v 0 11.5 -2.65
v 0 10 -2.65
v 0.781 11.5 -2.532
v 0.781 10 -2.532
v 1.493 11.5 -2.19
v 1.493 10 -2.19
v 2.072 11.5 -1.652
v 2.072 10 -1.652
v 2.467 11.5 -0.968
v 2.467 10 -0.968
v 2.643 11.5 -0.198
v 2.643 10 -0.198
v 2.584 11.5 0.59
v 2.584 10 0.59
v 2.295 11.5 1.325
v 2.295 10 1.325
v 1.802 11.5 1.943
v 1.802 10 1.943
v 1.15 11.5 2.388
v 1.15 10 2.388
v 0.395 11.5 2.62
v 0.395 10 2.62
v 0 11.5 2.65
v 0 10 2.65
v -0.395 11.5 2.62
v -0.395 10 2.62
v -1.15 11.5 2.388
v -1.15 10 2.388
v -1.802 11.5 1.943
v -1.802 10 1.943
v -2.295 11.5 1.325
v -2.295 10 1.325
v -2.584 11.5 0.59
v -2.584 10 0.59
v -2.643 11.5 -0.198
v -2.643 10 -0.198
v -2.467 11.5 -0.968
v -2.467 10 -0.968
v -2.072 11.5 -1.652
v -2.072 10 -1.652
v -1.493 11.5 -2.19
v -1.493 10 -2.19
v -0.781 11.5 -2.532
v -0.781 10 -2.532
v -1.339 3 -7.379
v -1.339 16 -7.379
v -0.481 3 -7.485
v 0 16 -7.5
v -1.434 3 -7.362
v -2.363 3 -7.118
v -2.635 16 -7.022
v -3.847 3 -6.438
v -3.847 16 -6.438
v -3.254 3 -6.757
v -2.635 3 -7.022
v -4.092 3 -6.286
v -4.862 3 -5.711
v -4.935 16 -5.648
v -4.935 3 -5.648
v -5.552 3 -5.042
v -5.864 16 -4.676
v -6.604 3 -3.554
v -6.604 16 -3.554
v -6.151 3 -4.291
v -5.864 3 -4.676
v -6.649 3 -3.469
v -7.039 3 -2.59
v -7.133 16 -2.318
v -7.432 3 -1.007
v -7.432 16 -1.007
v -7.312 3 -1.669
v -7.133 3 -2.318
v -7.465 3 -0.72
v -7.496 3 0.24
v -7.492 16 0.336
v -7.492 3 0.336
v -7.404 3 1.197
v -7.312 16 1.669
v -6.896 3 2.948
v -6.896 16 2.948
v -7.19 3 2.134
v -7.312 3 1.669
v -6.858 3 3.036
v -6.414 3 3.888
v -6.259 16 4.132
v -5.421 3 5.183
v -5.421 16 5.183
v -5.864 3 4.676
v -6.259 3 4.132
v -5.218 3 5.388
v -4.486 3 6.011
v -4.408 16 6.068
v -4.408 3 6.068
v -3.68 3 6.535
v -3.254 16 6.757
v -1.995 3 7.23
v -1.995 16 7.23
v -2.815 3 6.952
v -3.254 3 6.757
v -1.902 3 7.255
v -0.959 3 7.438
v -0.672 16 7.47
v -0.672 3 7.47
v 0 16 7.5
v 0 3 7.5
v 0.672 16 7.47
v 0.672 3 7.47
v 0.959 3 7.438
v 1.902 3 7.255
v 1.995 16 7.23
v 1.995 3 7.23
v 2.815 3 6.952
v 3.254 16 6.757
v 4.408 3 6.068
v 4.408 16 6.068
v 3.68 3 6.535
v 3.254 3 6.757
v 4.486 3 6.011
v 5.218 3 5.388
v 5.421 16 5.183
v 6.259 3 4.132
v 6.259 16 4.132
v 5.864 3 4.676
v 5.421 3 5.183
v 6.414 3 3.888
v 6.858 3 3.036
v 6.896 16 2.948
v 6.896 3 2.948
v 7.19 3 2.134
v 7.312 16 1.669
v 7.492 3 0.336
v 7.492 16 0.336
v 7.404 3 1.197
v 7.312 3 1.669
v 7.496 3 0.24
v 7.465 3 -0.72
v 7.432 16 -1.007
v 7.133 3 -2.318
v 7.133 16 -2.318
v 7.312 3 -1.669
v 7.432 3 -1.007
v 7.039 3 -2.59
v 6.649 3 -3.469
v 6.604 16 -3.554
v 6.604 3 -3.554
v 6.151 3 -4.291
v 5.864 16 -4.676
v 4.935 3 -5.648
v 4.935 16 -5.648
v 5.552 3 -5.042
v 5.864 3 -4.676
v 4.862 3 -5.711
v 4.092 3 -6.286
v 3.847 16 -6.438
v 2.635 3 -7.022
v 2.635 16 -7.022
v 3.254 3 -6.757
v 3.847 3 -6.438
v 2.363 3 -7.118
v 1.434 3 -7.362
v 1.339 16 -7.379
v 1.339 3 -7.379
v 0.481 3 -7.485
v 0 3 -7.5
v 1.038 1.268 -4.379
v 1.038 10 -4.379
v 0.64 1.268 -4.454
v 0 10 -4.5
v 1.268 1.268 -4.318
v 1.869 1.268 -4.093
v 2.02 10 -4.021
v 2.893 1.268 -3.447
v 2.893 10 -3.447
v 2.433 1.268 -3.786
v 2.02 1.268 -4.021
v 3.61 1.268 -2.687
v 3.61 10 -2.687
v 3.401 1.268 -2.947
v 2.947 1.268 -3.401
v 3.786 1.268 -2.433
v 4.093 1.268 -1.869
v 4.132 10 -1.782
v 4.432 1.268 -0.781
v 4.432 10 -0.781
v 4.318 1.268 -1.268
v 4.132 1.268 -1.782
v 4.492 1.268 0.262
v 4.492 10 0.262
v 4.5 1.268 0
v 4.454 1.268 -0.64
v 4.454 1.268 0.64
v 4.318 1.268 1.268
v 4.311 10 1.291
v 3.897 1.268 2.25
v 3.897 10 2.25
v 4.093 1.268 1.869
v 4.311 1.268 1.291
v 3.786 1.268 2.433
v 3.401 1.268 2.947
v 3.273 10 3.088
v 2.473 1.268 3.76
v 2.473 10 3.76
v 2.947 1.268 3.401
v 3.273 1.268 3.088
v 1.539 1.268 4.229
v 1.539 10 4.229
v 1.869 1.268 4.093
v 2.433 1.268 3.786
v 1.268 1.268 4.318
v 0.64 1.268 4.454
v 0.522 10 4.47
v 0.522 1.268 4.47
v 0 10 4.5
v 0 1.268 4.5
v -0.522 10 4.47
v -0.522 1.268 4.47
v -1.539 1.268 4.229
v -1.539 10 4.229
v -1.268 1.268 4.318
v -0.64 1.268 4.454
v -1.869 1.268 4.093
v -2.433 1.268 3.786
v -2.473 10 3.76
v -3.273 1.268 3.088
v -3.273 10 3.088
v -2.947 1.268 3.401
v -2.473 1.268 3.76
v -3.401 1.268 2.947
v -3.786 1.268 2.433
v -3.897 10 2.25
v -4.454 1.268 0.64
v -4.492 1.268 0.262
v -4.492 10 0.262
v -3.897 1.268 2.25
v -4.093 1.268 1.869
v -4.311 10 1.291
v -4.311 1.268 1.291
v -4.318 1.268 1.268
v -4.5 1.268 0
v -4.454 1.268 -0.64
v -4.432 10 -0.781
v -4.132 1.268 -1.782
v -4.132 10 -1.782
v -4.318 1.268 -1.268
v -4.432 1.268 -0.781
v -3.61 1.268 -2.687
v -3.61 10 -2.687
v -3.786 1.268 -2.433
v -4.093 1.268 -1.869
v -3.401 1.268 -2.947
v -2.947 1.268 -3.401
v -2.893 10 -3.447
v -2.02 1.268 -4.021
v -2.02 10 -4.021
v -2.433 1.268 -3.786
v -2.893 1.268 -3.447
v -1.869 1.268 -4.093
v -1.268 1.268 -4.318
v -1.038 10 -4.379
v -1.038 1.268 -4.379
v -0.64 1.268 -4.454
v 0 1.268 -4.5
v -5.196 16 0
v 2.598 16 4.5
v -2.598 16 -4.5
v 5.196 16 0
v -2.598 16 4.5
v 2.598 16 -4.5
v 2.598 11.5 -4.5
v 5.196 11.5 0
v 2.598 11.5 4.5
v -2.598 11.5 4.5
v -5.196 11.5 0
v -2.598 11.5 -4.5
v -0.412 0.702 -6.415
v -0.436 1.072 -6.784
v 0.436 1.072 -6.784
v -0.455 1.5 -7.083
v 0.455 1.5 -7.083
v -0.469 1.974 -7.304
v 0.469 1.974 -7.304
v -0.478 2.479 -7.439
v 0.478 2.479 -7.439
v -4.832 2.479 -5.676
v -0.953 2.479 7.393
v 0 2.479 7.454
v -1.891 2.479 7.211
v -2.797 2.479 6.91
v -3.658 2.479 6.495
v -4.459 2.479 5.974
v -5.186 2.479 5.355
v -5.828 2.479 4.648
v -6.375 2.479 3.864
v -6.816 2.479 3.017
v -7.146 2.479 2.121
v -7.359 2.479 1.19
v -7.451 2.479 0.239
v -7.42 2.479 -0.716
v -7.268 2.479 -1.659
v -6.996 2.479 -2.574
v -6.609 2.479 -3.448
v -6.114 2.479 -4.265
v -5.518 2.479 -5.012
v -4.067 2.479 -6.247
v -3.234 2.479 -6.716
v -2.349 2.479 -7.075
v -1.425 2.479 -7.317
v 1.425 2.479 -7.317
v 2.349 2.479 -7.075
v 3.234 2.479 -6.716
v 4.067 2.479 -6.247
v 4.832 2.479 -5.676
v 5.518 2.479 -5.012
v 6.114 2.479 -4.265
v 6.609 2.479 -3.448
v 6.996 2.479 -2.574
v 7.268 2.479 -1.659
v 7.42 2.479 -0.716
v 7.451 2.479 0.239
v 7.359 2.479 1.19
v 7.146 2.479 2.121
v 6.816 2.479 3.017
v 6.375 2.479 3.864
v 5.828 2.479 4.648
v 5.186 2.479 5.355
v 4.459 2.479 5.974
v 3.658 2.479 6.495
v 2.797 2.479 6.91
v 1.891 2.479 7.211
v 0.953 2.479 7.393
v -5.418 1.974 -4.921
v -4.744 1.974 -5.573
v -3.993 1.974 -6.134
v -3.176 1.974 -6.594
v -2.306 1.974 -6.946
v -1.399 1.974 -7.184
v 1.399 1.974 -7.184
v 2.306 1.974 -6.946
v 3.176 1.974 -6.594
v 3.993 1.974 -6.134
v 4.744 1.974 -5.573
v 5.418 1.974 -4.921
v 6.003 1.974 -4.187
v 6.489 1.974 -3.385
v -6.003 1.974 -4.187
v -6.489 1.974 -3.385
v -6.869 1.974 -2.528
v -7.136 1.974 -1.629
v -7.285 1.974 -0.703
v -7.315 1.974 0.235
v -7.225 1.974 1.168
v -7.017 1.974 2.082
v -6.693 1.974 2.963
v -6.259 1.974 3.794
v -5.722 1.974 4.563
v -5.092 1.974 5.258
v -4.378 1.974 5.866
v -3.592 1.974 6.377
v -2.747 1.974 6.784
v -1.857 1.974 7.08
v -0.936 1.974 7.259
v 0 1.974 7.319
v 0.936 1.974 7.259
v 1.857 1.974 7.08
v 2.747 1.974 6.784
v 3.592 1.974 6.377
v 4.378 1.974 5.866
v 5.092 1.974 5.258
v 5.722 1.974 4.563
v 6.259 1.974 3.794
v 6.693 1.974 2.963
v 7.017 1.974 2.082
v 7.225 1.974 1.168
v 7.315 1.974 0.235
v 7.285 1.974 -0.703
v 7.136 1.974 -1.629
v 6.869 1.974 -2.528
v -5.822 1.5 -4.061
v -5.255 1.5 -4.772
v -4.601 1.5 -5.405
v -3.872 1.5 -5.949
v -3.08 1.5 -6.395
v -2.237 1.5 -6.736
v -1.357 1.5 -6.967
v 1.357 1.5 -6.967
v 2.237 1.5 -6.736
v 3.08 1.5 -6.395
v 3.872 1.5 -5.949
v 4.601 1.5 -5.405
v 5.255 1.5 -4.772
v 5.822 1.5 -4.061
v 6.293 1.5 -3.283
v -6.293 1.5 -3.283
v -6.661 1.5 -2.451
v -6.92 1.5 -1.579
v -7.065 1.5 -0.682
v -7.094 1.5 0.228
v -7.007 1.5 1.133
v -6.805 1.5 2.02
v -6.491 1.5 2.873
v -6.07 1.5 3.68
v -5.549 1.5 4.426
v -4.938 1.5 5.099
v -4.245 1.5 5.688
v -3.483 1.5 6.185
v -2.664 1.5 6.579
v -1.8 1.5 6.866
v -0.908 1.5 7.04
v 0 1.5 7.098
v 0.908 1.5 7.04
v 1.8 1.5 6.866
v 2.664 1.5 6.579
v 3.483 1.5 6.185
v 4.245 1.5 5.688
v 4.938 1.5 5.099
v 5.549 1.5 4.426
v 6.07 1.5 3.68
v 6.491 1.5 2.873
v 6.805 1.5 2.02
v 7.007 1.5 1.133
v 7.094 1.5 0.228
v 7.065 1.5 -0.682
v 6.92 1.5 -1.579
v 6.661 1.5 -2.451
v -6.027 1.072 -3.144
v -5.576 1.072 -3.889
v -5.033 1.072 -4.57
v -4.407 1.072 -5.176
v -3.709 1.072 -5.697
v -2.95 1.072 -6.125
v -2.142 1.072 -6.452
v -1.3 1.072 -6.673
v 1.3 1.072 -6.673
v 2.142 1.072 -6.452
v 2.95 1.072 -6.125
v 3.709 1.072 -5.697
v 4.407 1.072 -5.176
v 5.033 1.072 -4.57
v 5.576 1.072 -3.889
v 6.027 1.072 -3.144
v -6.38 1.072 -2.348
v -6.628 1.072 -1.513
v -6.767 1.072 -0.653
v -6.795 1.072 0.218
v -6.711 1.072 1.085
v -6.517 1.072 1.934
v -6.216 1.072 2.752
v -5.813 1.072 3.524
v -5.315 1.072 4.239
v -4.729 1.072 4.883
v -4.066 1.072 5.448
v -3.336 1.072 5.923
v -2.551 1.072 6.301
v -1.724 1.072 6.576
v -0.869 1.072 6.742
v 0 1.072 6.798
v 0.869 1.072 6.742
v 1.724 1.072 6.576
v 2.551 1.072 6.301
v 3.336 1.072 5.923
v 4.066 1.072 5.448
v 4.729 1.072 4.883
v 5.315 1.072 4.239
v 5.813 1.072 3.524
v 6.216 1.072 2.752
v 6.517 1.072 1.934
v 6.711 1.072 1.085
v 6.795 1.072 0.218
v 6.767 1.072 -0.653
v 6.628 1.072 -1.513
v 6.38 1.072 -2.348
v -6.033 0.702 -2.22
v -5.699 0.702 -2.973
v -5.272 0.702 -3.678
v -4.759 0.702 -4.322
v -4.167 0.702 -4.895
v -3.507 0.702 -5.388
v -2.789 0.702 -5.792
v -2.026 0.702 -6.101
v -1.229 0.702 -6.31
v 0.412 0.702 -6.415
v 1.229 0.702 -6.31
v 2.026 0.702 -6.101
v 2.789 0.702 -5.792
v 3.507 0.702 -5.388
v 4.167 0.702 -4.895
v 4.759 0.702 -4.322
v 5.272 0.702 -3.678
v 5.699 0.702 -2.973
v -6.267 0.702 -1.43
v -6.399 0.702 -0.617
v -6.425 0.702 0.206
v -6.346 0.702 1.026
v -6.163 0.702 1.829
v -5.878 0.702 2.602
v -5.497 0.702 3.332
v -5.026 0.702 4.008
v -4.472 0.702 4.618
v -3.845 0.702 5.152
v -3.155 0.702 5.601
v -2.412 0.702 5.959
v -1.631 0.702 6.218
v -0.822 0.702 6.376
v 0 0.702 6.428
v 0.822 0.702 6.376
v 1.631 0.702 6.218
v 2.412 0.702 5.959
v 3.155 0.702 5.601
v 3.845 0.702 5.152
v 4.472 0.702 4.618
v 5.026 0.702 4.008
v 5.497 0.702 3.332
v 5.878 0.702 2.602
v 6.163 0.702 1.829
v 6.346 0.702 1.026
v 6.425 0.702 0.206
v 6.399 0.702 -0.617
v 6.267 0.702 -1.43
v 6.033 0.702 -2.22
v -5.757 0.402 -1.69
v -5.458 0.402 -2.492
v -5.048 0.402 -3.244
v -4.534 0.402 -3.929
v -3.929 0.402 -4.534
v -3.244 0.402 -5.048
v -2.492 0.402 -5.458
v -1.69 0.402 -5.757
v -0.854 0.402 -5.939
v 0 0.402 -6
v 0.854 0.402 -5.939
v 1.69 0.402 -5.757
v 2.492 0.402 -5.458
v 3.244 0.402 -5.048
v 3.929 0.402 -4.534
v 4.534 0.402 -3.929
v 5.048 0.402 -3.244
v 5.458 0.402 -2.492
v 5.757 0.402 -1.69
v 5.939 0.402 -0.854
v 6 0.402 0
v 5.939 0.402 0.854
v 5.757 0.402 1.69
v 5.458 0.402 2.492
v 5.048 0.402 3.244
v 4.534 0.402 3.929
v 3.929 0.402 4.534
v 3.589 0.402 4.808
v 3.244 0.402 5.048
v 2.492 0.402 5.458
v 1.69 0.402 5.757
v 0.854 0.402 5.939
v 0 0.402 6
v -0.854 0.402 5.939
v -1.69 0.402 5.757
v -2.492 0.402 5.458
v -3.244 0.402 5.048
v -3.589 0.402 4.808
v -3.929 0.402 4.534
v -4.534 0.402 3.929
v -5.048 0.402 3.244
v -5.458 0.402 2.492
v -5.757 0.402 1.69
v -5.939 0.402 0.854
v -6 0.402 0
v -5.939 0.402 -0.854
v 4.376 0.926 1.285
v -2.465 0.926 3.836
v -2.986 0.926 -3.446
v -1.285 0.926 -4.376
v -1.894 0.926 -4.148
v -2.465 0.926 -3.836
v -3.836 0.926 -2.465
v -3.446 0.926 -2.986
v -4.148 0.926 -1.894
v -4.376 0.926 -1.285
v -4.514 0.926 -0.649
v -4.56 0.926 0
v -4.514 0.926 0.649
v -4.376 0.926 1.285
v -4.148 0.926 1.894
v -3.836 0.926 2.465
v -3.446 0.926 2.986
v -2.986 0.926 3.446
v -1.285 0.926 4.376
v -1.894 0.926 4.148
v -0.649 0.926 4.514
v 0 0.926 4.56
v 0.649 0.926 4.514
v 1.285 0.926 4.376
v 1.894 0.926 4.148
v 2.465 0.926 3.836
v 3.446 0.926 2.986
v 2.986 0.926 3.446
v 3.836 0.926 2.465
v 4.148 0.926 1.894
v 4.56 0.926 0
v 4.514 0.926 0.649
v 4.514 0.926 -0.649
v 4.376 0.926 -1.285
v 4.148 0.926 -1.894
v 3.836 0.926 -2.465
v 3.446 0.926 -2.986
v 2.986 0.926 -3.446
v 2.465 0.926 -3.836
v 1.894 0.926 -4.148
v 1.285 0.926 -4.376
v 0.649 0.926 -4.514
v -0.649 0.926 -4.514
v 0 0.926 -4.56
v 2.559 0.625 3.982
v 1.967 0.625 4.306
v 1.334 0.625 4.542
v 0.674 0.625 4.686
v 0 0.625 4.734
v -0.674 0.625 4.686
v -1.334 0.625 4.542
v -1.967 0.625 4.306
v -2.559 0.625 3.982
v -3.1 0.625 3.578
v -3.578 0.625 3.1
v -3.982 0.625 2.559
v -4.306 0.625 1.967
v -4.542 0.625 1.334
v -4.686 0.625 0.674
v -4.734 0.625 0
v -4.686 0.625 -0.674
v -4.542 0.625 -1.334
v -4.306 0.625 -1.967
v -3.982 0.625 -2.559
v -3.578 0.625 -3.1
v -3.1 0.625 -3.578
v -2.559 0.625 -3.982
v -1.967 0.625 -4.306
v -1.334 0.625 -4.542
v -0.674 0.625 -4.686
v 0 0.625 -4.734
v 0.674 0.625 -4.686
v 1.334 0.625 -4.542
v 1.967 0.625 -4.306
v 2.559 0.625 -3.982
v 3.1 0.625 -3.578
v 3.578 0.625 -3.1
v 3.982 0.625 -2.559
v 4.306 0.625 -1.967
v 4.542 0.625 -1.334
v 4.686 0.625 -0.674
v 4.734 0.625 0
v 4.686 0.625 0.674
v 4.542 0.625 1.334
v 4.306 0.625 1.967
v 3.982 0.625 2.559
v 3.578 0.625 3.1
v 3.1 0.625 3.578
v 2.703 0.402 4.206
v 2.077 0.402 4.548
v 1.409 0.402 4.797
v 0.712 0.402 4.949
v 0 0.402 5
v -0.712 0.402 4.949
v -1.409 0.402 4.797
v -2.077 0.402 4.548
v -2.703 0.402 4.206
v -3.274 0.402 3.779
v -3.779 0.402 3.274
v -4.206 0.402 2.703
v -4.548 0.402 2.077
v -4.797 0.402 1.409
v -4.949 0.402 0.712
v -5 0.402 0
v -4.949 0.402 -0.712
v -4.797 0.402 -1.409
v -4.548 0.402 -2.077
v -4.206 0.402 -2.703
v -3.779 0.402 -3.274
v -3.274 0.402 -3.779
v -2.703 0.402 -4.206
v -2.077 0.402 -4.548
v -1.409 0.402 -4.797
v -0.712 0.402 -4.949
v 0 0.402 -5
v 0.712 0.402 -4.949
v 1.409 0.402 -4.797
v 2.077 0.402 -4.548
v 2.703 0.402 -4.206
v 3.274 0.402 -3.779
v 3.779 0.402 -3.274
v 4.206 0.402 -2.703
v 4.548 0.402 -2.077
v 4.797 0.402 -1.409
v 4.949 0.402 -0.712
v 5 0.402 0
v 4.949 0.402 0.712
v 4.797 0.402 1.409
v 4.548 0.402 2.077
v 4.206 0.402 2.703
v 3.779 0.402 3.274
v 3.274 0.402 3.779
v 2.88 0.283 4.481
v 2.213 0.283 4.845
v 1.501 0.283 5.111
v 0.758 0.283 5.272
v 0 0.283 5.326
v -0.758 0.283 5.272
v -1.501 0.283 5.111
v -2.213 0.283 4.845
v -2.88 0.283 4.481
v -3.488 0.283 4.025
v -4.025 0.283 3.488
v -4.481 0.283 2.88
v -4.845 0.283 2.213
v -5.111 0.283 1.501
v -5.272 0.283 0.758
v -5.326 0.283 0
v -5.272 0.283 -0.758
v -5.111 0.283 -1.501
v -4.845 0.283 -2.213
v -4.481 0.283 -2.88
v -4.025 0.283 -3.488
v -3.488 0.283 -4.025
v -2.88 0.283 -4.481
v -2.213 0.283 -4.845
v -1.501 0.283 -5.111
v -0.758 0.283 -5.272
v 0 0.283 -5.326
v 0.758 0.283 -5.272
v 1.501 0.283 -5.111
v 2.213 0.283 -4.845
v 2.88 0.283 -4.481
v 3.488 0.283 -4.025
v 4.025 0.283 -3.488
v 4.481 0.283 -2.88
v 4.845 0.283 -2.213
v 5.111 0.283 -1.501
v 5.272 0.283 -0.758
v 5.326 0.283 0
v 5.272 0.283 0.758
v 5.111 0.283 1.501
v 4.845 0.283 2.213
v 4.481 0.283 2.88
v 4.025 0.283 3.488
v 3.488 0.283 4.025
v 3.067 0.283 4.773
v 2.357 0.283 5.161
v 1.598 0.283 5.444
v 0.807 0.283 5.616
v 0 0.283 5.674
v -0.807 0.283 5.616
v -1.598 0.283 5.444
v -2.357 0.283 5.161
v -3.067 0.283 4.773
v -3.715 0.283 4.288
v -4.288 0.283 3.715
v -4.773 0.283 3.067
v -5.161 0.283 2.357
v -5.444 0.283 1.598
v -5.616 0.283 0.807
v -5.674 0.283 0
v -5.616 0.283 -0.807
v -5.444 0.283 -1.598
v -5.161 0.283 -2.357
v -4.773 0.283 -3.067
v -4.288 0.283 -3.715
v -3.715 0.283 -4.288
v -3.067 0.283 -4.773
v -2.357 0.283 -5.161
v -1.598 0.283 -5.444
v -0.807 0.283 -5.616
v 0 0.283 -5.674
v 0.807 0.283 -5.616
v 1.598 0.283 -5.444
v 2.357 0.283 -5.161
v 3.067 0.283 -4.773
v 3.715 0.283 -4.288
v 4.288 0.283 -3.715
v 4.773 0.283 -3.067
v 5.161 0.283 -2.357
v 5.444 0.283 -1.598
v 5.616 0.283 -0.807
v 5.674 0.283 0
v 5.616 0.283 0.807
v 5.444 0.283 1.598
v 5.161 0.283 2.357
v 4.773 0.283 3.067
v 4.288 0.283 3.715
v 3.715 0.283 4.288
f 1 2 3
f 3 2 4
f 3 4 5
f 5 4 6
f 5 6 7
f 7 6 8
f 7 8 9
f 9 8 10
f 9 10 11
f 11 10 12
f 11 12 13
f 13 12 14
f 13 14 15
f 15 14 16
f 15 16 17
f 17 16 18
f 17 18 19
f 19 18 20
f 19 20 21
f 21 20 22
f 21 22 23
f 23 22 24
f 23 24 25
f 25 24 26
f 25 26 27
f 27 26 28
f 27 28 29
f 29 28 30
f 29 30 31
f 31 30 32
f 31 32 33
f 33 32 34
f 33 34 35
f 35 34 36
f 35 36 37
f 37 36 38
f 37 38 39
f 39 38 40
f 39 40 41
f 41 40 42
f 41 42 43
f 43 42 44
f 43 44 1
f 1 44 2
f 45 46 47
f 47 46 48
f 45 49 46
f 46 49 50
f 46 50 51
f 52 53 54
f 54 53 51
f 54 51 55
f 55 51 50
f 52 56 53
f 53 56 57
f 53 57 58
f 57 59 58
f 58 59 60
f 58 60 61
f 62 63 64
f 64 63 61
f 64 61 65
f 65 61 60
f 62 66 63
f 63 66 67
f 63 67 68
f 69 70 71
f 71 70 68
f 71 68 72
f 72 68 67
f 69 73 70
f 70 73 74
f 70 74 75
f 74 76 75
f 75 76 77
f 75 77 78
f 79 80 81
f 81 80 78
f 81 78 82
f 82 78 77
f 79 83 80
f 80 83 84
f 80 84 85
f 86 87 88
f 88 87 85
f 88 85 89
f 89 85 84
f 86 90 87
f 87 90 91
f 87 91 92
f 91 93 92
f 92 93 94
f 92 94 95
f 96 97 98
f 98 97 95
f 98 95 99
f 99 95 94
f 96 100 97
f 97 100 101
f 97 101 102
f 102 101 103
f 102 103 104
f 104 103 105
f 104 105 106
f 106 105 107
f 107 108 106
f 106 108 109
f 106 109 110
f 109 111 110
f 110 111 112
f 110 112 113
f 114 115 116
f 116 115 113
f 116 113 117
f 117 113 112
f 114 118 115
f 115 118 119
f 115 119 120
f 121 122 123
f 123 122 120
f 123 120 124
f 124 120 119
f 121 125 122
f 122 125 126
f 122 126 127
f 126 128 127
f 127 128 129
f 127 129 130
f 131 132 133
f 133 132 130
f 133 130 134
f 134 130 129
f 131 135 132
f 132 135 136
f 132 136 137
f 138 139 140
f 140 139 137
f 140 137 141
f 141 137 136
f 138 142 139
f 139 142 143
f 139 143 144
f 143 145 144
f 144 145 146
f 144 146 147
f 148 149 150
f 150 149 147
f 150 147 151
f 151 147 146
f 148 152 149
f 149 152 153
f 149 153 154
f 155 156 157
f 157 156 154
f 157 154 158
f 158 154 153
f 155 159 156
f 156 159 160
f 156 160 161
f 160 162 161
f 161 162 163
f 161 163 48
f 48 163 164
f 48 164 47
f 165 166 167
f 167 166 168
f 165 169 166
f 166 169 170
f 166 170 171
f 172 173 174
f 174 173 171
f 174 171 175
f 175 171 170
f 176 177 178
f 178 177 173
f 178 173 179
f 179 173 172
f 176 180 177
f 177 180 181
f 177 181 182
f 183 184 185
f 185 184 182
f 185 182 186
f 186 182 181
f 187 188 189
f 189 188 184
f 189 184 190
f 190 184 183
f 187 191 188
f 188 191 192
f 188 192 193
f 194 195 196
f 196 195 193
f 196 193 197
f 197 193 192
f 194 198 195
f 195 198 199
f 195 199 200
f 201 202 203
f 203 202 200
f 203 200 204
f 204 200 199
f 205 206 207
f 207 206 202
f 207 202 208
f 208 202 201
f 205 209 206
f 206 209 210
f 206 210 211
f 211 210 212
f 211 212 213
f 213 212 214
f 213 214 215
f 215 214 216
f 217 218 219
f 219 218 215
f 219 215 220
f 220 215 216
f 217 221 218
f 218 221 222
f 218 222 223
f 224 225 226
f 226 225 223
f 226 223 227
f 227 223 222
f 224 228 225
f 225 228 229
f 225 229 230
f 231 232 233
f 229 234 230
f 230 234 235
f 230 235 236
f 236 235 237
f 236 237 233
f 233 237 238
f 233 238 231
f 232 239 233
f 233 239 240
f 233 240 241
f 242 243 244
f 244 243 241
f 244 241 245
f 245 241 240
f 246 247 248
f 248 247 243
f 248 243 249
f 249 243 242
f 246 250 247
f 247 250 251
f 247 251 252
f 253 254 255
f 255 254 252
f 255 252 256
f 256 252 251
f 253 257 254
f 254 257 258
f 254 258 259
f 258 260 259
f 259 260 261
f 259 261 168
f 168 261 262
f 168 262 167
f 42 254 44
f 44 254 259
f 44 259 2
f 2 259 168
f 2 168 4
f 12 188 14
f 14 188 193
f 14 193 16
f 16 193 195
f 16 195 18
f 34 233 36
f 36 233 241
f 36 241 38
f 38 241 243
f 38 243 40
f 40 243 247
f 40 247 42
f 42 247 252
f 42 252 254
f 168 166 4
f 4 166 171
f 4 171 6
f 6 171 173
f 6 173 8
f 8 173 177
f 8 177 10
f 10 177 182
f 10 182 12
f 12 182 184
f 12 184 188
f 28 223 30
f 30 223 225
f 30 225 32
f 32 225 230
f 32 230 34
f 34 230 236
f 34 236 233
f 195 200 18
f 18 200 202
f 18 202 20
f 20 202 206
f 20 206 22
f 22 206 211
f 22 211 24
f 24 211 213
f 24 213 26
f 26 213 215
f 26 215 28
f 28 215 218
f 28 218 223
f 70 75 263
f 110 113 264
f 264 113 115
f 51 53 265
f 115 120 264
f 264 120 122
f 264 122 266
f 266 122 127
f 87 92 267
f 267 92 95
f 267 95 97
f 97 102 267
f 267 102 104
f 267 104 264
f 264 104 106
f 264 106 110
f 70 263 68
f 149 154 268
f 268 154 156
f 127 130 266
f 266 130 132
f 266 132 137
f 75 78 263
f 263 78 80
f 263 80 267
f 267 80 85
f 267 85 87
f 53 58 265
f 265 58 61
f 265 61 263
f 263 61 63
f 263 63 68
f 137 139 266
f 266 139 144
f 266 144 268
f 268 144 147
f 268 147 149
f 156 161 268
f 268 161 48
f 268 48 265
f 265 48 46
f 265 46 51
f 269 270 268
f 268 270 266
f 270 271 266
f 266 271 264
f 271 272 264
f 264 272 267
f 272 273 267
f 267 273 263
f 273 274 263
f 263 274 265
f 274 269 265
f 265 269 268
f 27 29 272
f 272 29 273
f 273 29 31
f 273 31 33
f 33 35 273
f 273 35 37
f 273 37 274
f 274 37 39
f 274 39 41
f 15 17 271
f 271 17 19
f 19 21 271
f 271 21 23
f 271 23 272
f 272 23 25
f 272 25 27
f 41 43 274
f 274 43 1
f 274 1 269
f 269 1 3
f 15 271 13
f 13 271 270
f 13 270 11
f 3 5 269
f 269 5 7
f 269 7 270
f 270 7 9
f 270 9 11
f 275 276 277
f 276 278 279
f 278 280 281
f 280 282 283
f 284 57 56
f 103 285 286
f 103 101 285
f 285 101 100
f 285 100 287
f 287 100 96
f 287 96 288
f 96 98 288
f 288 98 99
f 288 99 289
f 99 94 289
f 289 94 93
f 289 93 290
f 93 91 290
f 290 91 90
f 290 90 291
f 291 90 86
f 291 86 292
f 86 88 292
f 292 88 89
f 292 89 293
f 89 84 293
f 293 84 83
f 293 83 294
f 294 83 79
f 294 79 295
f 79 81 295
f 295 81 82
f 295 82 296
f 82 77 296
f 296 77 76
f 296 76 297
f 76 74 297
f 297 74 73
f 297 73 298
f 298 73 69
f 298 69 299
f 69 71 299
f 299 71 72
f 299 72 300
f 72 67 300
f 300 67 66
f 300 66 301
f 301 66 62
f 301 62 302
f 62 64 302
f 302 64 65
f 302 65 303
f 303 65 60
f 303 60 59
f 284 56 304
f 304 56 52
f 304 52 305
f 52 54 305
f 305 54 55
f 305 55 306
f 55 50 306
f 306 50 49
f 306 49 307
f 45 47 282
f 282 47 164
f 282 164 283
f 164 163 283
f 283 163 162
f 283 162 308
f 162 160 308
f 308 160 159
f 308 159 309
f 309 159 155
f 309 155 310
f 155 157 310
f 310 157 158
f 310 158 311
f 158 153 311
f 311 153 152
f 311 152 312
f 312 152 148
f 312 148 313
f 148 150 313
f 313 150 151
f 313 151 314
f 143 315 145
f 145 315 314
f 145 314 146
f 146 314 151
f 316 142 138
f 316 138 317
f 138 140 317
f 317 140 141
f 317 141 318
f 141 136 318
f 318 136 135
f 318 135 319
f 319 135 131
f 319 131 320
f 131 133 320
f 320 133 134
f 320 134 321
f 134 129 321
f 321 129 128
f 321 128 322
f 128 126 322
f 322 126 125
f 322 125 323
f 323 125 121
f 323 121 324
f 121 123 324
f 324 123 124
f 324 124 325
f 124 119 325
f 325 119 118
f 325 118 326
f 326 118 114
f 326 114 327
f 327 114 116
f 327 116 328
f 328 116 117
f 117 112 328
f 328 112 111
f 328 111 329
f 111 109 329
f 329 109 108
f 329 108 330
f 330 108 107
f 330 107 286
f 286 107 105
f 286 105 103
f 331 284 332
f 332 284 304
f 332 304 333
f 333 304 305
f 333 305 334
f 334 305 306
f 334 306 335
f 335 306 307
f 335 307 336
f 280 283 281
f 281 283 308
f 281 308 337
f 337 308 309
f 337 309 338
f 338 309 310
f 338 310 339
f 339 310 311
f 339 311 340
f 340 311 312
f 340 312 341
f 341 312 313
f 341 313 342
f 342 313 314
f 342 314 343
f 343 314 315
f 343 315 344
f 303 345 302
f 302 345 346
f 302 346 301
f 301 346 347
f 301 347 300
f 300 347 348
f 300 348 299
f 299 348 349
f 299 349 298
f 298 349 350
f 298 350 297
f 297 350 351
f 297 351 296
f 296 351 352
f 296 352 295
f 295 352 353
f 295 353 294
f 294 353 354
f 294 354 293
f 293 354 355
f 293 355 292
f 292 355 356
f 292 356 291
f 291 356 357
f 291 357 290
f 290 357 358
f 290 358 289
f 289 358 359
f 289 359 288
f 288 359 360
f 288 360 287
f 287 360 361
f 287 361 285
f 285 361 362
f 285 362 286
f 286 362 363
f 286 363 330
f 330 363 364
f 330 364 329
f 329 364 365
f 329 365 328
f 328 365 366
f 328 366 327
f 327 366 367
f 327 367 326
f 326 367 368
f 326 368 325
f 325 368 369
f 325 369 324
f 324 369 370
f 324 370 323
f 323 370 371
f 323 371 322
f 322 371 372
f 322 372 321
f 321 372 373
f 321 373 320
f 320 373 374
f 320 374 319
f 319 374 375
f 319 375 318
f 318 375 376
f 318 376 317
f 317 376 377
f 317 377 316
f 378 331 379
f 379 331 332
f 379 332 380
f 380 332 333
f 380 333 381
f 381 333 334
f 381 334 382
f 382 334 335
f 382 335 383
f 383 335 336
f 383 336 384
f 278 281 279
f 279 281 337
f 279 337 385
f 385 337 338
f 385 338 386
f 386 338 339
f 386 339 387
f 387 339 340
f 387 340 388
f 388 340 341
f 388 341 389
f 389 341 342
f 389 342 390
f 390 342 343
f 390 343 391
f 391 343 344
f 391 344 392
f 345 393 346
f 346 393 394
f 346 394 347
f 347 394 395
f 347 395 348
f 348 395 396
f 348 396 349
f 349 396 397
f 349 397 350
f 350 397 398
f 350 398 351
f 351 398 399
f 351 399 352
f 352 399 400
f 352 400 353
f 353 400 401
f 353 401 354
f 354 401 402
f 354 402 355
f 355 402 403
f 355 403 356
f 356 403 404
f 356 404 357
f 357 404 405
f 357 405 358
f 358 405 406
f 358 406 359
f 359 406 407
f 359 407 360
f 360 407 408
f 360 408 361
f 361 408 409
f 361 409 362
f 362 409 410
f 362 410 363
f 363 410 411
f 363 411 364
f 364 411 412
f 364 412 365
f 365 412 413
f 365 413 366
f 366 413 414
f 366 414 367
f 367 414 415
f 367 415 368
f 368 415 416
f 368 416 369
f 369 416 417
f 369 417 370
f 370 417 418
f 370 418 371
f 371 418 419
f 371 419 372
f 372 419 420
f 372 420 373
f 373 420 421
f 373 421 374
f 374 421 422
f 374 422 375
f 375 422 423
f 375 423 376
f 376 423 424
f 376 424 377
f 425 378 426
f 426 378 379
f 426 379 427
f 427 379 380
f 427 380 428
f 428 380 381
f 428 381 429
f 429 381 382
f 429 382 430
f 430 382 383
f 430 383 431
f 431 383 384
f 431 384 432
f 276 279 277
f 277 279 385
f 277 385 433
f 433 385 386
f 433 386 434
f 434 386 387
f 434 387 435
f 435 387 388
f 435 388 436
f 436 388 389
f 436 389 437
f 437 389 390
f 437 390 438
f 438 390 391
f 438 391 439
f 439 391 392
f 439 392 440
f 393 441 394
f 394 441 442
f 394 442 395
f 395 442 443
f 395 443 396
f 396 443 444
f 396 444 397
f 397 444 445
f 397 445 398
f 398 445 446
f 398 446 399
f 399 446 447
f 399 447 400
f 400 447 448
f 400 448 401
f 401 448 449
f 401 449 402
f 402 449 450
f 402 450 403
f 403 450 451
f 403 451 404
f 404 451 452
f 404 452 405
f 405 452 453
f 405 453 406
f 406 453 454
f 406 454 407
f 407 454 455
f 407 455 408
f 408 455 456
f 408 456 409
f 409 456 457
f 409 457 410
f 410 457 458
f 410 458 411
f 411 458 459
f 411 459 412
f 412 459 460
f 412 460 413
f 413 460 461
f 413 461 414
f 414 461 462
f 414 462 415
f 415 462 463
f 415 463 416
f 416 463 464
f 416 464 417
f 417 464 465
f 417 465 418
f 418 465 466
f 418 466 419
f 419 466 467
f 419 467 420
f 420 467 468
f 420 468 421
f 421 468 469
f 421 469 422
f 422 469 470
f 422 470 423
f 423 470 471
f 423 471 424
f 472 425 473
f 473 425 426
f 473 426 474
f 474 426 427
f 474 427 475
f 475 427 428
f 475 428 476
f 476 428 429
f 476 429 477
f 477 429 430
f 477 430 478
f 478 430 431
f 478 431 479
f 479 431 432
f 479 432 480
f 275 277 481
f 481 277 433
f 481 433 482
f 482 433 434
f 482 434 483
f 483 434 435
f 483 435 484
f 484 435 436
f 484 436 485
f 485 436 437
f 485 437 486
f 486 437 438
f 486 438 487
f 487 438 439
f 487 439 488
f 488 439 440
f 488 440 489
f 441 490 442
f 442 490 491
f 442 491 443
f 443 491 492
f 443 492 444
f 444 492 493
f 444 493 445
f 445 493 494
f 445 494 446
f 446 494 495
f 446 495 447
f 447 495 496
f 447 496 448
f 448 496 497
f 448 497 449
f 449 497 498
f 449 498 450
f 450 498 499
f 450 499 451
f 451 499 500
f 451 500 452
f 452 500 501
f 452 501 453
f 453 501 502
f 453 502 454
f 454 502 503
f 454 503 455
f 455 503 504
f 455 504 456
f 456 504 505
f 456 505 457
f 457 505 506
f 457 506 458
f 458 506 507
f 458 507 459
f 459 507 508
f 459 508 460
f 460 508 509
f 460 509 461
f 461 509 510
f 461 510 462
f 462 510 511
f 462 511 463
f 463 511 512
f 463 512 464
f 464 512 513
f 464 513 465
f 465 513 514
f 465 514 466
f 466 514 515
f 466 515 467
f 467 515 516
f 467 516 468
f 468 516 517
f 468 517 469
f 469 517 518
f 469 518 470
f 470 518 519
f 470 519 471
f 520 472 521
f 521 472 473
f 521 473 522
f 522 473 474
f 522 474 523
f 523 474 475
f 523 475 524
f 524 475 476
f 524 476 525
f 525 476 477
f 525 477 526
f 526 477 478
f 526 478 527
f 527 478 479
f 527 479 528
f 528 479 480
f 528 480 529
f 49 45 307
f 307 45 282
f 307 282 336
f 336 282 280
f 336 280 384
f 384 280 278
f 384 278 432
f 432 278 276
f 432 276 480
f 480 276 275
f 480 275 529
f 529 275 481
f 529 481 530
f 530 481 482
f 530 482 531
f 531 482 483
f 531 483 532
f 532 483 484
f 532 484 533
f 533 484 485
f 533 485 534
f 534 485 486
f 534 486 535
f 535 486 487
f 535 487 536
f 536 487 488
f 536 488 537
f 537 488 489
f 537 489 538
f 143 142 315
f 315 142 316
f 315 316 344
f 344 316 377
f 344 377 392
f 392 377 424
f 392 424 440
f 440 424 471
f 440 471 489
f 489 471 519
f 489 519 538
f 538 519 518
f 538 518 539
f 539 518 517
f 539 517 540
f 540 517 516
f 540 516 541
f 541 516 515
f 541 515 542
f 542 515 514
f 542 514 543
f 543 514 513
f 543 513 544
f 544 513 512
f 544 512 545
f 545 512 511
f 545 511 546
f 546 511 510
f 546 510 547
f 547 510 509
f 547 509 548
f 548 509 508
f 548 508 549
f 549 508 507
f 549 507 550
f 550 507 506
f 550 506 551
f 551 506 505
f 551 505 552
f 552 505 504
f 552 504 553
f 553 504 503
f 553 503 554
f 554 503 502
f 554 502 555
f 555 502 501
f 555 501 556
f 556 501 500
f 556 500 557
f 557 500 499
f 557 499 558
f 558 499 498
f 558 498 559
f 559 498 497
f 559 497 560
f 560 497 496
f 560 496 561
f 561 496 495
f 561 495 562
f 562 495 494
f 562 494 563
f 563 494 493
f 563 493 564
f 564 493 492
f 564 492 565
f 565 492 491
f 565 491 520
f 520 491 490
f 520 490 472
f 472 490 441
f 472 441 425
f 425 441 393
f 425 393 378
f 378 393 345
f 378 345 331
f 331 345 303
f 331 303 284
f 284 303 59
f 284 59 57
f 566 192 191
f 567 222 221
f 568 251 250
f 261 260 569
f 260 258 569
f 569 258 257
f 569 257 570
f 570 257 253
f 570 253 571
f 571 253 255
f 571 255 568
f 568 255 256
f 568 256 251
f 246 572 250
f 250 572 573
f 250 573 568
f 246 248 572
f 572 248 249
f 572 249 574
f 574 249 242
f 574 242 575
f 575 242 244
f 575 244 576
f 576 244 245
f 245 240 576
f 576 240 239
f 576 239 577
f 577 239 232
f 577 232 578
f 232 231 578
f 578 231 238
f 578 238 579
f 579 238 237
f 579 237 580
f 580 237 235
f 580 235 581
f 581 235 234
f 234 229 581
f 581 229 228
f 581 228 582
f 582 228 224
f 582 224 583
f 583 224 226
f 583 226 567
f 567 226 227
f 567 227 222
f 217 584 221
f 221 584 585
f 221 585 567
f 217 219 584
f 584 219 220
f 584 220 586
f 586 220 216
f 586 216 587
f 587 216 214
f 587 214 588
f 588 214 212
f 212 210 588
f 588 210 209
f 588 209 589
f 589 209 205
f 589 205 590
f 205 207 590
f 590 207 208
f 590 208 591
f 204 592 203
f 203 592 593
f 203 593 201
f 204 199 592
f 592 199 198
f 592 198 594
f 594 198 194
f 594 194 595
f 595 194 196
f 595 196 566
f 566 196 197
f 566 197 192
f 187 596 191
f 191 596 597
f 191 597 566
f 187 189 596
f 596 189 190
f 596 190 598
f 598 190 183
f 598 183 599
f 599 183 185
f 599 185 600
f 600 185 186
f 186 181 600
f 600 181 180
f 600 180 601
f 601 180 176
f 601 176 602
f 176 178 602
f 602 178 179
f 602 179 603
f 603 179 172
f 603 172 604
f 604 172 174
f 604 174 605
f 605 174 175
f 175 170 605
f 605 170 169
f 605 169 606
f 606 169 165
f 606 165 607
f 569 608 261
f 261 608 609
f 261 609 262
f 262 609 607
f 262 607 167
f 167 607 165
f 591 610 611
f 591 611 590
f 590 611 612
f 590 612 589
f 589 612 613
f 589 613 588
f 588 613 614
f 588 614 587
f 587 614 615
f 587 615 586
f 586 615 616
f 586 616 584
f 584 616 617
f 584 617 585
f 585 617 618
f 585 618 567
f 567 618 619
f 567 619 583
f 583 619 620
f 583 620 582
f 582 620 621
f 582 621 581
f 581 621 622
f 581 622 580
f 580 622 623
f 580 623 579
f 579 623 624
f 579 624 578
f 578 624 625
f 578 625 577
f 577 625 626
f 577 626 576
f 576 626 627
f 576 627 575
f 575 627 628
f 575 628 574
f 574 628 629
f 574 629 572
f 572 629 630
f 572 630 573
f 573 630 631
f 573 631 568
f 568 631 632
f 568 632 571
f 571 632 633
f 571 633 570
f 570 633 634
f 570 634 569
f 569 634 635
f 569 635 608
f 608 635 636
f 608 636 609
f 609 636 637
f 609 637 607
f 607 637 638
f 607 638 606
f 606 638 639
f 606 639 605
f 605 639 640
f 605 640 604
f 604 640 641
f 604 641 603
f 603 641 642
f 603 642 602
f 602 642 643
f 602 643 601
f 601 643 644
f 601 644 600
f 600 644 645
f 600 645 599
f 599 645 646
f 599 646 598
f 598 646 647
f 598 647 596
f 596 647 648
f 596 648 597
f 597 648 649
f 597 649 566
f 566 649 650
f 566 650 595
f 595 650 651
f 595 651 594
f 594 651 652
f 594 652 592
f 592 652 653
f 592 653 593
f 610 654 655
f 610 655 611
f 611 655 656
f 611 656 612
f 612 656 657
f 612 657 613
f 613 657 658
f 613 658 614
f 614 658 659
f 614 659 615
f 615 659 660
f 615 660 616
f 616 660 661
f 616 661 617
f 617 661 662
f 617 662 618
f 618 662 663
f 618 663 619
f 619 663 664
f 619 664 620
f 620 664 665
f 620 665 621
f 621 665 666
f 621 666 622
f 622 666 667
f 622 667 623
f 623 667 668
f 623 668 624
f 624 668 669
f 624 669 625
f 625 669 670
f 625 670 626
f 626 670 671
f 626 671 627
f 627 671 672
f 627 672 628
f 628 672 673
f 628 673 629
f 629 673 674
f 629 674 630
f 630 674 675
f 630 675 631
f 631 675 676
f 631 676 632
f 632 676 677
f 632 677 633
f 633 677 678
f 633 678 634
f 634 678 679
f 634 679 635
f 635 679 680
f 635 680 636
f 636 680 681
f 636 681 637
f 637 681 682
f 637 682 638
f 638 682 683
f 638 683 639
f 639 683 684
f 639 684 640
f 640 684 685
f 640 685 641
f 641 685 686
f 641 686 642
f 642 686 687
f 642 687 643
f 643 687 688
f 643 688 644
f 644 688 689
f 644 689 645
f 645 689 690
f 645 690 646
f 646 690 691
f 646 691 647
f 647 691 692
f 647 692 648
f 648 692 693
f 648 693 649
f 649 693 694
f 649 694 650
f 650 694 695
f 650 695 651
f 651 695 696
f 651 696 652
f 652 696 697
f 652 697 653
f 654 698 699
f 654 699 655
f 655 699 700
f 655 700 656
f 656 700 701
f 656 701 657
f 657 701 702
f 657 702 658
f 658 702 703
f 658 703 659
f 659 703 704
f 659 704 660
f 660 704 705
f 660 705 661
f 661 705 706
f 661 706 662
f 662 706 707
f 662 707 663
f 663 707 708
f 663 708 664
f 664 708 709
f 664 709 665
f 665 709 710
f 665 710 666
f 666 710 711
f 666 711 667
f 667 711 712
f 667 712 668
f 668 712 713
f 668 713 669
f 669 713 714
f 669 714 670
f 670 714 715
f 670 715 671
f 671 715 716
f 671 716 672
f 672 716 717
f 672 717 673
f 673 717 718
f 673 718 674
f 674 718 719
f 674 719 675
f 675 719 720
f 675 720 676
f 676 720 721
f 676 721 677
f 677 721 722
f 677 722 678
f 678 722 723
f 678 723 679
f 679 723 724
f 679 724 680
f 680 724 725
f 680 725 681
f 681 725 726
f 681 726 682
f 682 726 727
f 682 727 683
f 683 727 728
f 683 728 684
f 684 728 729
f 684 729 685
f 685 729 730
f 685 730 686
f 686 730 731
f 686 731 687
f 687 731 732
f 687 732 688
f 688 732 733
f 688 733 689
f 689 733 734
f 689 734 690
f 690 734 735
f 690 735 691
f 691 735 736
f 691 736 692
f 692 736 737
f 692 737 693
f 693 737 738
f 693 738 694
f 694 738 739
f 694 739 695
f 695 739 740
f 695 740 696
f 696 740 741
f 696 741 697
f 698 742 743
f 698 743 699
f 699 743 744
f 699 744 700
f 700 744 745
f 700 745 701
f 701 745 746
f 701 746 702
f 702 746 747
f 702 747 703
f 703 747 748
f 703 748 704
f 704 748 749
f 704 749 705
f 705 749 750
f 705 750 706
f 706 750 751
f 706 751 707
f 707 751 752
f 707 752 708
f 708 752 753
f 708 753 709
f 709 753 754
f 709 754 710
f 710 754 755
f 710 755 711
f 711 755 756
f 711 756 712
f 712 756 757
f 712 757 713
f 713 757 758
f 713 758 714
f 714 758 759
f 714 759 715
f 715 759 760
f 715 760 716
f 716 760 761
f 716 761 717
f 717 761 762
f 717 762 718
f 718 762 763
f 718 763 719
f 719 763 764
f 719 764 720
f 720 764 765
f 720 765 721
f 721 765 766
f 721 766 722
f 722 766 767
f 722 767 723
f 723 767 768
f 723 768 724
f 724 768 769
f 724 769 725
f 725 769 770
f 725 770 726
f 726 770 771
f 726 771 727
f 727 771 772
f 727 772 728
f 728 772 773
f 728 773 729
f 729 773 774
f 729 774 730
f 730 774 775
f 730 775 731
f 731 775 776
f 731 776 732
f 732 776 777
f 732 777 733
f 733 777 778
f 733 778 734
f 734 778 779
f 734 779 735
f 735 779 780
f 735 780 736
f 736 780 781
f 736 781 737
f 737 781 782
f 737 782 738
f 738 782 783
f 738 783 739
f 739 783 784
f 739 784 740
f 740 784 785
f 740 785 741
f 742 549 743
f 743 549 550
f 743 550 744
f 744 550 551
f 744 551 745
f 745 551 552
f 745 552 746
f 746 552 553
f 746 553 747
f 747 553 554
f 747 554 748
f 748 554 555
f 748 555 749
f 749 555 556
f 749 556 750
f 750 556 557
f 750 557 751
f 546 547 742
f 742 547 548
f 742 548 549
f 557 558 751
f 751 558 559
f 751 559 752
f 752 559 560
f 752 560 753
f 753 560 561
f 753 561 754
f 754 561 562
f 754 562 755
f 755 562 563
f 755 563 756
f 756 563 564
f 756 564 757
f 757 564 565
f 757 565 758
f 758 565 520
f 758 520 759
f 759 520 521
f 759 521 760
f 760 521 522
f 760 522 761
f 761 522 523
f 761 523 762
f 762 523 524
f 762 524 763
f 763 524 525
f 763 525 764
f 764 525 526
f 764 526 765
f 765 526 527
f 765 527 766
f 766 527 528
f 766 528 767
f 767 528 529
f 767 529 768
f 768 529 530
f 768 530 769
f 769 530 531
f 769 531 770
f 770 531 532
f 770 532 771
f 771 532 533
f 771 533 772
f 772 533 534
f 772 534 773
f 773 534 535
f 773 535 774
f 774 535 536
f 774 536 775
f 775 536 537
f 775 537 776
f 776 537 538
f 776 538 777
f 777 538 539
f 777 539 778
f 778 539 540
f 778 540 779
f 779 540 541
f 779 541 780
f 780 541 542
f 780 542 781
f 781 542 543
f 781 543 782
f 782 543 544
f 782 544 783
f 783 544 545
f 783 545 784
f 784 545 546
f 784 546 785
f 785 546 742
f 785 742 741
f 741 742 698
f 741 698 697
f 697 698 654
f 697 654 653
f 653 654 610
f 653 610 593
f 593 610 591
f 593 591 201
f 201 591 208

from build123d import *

# Parameters (mm, degrees)
SKETCH1_R           = 7.5
SKETCH1_R_2         = 4.5
BOSS_EXTRUDE1_DEPTH = 10
SKETCH2_R           = 7.5
SKETCH2_R_2         = 2.65
BOSS_EXTRUDE2_DEPTH = 6
CUT_EXTRUDE1_DEPTH  = 4.5
FILLET1_R           = 3
FILLET2_R           = 1


with BuildPart() as part:
    # Sketch1 → Boss-Extrude1 (new body)
    with BuildSketch(Plane(origin=(0, 0, 0), x_dir=(1, 0, 0), z_dir=(0, 1, 0))):
        with Locations(Location((0, 0, 0), (0, 0, 270))):
            Circle(SKETCH1_R)
        with Locations(Location((0, 0, 0), (0, 0, 270))):
            Circle(SKETCH1_R_2, mode=Mode.SUBTRACT)
    extrude(amount=BOSS_EXTRUDE1_DEPTH)

    # Sketch2 → Boss-Extrude2 (add)
    with BuildSketch(Plane(origin=(0, 10, 0), x_dir=(1, 0, 0), z_dir=(0, 1, 0))):
        with Locations(Location((0, 0, 0), (0, 0, 270))):
            Circle(SKETCH2_R)
        with Locations(Location((0, 0, 0), (0, 0, 270))):
            Circle(SKETCH2_R_2, mode=Mode.SUBTRACT)
    extrude(amount=BOSS_EXTRUDE2_DEPTH)

    # Sketch3 → Cut-Extrude1 (cut)
    with BuildSketch(Plane(origin=(0, 16, 0), x_dir=(1, 0, 0), z_dir=(0, 1, 0))):
        Polygon((2.598076211, 4.5), (-2.598076211, 4.5), (-5.196152423, 0), (-2.598076211, -4.5), (2.598076211, -4.5), (5.196152423, 0), align=None)
    extrude(amount=-CUT_EXTRUDE1_DEPTH, mode=Mode.SUBTRACT)

    # Fillet1
    fillet1_edges = [part.edges().sort_by_distance(p)[0] for p in [
        (0, 0, -7.5),
    ]]
    fillet(fillet1_edges, radius=FILLET1_R - 0.0001)  # a hair under: the kernel refuses the full size

    # Fillet2
    fillet2_edges = [part.edges().sort_by_distance(p)[0] for p in [
        (0, 0, -4.5),
    ]]
    fillet(fillet2_edges, radius=FILLET2_R)


solid = part.part
